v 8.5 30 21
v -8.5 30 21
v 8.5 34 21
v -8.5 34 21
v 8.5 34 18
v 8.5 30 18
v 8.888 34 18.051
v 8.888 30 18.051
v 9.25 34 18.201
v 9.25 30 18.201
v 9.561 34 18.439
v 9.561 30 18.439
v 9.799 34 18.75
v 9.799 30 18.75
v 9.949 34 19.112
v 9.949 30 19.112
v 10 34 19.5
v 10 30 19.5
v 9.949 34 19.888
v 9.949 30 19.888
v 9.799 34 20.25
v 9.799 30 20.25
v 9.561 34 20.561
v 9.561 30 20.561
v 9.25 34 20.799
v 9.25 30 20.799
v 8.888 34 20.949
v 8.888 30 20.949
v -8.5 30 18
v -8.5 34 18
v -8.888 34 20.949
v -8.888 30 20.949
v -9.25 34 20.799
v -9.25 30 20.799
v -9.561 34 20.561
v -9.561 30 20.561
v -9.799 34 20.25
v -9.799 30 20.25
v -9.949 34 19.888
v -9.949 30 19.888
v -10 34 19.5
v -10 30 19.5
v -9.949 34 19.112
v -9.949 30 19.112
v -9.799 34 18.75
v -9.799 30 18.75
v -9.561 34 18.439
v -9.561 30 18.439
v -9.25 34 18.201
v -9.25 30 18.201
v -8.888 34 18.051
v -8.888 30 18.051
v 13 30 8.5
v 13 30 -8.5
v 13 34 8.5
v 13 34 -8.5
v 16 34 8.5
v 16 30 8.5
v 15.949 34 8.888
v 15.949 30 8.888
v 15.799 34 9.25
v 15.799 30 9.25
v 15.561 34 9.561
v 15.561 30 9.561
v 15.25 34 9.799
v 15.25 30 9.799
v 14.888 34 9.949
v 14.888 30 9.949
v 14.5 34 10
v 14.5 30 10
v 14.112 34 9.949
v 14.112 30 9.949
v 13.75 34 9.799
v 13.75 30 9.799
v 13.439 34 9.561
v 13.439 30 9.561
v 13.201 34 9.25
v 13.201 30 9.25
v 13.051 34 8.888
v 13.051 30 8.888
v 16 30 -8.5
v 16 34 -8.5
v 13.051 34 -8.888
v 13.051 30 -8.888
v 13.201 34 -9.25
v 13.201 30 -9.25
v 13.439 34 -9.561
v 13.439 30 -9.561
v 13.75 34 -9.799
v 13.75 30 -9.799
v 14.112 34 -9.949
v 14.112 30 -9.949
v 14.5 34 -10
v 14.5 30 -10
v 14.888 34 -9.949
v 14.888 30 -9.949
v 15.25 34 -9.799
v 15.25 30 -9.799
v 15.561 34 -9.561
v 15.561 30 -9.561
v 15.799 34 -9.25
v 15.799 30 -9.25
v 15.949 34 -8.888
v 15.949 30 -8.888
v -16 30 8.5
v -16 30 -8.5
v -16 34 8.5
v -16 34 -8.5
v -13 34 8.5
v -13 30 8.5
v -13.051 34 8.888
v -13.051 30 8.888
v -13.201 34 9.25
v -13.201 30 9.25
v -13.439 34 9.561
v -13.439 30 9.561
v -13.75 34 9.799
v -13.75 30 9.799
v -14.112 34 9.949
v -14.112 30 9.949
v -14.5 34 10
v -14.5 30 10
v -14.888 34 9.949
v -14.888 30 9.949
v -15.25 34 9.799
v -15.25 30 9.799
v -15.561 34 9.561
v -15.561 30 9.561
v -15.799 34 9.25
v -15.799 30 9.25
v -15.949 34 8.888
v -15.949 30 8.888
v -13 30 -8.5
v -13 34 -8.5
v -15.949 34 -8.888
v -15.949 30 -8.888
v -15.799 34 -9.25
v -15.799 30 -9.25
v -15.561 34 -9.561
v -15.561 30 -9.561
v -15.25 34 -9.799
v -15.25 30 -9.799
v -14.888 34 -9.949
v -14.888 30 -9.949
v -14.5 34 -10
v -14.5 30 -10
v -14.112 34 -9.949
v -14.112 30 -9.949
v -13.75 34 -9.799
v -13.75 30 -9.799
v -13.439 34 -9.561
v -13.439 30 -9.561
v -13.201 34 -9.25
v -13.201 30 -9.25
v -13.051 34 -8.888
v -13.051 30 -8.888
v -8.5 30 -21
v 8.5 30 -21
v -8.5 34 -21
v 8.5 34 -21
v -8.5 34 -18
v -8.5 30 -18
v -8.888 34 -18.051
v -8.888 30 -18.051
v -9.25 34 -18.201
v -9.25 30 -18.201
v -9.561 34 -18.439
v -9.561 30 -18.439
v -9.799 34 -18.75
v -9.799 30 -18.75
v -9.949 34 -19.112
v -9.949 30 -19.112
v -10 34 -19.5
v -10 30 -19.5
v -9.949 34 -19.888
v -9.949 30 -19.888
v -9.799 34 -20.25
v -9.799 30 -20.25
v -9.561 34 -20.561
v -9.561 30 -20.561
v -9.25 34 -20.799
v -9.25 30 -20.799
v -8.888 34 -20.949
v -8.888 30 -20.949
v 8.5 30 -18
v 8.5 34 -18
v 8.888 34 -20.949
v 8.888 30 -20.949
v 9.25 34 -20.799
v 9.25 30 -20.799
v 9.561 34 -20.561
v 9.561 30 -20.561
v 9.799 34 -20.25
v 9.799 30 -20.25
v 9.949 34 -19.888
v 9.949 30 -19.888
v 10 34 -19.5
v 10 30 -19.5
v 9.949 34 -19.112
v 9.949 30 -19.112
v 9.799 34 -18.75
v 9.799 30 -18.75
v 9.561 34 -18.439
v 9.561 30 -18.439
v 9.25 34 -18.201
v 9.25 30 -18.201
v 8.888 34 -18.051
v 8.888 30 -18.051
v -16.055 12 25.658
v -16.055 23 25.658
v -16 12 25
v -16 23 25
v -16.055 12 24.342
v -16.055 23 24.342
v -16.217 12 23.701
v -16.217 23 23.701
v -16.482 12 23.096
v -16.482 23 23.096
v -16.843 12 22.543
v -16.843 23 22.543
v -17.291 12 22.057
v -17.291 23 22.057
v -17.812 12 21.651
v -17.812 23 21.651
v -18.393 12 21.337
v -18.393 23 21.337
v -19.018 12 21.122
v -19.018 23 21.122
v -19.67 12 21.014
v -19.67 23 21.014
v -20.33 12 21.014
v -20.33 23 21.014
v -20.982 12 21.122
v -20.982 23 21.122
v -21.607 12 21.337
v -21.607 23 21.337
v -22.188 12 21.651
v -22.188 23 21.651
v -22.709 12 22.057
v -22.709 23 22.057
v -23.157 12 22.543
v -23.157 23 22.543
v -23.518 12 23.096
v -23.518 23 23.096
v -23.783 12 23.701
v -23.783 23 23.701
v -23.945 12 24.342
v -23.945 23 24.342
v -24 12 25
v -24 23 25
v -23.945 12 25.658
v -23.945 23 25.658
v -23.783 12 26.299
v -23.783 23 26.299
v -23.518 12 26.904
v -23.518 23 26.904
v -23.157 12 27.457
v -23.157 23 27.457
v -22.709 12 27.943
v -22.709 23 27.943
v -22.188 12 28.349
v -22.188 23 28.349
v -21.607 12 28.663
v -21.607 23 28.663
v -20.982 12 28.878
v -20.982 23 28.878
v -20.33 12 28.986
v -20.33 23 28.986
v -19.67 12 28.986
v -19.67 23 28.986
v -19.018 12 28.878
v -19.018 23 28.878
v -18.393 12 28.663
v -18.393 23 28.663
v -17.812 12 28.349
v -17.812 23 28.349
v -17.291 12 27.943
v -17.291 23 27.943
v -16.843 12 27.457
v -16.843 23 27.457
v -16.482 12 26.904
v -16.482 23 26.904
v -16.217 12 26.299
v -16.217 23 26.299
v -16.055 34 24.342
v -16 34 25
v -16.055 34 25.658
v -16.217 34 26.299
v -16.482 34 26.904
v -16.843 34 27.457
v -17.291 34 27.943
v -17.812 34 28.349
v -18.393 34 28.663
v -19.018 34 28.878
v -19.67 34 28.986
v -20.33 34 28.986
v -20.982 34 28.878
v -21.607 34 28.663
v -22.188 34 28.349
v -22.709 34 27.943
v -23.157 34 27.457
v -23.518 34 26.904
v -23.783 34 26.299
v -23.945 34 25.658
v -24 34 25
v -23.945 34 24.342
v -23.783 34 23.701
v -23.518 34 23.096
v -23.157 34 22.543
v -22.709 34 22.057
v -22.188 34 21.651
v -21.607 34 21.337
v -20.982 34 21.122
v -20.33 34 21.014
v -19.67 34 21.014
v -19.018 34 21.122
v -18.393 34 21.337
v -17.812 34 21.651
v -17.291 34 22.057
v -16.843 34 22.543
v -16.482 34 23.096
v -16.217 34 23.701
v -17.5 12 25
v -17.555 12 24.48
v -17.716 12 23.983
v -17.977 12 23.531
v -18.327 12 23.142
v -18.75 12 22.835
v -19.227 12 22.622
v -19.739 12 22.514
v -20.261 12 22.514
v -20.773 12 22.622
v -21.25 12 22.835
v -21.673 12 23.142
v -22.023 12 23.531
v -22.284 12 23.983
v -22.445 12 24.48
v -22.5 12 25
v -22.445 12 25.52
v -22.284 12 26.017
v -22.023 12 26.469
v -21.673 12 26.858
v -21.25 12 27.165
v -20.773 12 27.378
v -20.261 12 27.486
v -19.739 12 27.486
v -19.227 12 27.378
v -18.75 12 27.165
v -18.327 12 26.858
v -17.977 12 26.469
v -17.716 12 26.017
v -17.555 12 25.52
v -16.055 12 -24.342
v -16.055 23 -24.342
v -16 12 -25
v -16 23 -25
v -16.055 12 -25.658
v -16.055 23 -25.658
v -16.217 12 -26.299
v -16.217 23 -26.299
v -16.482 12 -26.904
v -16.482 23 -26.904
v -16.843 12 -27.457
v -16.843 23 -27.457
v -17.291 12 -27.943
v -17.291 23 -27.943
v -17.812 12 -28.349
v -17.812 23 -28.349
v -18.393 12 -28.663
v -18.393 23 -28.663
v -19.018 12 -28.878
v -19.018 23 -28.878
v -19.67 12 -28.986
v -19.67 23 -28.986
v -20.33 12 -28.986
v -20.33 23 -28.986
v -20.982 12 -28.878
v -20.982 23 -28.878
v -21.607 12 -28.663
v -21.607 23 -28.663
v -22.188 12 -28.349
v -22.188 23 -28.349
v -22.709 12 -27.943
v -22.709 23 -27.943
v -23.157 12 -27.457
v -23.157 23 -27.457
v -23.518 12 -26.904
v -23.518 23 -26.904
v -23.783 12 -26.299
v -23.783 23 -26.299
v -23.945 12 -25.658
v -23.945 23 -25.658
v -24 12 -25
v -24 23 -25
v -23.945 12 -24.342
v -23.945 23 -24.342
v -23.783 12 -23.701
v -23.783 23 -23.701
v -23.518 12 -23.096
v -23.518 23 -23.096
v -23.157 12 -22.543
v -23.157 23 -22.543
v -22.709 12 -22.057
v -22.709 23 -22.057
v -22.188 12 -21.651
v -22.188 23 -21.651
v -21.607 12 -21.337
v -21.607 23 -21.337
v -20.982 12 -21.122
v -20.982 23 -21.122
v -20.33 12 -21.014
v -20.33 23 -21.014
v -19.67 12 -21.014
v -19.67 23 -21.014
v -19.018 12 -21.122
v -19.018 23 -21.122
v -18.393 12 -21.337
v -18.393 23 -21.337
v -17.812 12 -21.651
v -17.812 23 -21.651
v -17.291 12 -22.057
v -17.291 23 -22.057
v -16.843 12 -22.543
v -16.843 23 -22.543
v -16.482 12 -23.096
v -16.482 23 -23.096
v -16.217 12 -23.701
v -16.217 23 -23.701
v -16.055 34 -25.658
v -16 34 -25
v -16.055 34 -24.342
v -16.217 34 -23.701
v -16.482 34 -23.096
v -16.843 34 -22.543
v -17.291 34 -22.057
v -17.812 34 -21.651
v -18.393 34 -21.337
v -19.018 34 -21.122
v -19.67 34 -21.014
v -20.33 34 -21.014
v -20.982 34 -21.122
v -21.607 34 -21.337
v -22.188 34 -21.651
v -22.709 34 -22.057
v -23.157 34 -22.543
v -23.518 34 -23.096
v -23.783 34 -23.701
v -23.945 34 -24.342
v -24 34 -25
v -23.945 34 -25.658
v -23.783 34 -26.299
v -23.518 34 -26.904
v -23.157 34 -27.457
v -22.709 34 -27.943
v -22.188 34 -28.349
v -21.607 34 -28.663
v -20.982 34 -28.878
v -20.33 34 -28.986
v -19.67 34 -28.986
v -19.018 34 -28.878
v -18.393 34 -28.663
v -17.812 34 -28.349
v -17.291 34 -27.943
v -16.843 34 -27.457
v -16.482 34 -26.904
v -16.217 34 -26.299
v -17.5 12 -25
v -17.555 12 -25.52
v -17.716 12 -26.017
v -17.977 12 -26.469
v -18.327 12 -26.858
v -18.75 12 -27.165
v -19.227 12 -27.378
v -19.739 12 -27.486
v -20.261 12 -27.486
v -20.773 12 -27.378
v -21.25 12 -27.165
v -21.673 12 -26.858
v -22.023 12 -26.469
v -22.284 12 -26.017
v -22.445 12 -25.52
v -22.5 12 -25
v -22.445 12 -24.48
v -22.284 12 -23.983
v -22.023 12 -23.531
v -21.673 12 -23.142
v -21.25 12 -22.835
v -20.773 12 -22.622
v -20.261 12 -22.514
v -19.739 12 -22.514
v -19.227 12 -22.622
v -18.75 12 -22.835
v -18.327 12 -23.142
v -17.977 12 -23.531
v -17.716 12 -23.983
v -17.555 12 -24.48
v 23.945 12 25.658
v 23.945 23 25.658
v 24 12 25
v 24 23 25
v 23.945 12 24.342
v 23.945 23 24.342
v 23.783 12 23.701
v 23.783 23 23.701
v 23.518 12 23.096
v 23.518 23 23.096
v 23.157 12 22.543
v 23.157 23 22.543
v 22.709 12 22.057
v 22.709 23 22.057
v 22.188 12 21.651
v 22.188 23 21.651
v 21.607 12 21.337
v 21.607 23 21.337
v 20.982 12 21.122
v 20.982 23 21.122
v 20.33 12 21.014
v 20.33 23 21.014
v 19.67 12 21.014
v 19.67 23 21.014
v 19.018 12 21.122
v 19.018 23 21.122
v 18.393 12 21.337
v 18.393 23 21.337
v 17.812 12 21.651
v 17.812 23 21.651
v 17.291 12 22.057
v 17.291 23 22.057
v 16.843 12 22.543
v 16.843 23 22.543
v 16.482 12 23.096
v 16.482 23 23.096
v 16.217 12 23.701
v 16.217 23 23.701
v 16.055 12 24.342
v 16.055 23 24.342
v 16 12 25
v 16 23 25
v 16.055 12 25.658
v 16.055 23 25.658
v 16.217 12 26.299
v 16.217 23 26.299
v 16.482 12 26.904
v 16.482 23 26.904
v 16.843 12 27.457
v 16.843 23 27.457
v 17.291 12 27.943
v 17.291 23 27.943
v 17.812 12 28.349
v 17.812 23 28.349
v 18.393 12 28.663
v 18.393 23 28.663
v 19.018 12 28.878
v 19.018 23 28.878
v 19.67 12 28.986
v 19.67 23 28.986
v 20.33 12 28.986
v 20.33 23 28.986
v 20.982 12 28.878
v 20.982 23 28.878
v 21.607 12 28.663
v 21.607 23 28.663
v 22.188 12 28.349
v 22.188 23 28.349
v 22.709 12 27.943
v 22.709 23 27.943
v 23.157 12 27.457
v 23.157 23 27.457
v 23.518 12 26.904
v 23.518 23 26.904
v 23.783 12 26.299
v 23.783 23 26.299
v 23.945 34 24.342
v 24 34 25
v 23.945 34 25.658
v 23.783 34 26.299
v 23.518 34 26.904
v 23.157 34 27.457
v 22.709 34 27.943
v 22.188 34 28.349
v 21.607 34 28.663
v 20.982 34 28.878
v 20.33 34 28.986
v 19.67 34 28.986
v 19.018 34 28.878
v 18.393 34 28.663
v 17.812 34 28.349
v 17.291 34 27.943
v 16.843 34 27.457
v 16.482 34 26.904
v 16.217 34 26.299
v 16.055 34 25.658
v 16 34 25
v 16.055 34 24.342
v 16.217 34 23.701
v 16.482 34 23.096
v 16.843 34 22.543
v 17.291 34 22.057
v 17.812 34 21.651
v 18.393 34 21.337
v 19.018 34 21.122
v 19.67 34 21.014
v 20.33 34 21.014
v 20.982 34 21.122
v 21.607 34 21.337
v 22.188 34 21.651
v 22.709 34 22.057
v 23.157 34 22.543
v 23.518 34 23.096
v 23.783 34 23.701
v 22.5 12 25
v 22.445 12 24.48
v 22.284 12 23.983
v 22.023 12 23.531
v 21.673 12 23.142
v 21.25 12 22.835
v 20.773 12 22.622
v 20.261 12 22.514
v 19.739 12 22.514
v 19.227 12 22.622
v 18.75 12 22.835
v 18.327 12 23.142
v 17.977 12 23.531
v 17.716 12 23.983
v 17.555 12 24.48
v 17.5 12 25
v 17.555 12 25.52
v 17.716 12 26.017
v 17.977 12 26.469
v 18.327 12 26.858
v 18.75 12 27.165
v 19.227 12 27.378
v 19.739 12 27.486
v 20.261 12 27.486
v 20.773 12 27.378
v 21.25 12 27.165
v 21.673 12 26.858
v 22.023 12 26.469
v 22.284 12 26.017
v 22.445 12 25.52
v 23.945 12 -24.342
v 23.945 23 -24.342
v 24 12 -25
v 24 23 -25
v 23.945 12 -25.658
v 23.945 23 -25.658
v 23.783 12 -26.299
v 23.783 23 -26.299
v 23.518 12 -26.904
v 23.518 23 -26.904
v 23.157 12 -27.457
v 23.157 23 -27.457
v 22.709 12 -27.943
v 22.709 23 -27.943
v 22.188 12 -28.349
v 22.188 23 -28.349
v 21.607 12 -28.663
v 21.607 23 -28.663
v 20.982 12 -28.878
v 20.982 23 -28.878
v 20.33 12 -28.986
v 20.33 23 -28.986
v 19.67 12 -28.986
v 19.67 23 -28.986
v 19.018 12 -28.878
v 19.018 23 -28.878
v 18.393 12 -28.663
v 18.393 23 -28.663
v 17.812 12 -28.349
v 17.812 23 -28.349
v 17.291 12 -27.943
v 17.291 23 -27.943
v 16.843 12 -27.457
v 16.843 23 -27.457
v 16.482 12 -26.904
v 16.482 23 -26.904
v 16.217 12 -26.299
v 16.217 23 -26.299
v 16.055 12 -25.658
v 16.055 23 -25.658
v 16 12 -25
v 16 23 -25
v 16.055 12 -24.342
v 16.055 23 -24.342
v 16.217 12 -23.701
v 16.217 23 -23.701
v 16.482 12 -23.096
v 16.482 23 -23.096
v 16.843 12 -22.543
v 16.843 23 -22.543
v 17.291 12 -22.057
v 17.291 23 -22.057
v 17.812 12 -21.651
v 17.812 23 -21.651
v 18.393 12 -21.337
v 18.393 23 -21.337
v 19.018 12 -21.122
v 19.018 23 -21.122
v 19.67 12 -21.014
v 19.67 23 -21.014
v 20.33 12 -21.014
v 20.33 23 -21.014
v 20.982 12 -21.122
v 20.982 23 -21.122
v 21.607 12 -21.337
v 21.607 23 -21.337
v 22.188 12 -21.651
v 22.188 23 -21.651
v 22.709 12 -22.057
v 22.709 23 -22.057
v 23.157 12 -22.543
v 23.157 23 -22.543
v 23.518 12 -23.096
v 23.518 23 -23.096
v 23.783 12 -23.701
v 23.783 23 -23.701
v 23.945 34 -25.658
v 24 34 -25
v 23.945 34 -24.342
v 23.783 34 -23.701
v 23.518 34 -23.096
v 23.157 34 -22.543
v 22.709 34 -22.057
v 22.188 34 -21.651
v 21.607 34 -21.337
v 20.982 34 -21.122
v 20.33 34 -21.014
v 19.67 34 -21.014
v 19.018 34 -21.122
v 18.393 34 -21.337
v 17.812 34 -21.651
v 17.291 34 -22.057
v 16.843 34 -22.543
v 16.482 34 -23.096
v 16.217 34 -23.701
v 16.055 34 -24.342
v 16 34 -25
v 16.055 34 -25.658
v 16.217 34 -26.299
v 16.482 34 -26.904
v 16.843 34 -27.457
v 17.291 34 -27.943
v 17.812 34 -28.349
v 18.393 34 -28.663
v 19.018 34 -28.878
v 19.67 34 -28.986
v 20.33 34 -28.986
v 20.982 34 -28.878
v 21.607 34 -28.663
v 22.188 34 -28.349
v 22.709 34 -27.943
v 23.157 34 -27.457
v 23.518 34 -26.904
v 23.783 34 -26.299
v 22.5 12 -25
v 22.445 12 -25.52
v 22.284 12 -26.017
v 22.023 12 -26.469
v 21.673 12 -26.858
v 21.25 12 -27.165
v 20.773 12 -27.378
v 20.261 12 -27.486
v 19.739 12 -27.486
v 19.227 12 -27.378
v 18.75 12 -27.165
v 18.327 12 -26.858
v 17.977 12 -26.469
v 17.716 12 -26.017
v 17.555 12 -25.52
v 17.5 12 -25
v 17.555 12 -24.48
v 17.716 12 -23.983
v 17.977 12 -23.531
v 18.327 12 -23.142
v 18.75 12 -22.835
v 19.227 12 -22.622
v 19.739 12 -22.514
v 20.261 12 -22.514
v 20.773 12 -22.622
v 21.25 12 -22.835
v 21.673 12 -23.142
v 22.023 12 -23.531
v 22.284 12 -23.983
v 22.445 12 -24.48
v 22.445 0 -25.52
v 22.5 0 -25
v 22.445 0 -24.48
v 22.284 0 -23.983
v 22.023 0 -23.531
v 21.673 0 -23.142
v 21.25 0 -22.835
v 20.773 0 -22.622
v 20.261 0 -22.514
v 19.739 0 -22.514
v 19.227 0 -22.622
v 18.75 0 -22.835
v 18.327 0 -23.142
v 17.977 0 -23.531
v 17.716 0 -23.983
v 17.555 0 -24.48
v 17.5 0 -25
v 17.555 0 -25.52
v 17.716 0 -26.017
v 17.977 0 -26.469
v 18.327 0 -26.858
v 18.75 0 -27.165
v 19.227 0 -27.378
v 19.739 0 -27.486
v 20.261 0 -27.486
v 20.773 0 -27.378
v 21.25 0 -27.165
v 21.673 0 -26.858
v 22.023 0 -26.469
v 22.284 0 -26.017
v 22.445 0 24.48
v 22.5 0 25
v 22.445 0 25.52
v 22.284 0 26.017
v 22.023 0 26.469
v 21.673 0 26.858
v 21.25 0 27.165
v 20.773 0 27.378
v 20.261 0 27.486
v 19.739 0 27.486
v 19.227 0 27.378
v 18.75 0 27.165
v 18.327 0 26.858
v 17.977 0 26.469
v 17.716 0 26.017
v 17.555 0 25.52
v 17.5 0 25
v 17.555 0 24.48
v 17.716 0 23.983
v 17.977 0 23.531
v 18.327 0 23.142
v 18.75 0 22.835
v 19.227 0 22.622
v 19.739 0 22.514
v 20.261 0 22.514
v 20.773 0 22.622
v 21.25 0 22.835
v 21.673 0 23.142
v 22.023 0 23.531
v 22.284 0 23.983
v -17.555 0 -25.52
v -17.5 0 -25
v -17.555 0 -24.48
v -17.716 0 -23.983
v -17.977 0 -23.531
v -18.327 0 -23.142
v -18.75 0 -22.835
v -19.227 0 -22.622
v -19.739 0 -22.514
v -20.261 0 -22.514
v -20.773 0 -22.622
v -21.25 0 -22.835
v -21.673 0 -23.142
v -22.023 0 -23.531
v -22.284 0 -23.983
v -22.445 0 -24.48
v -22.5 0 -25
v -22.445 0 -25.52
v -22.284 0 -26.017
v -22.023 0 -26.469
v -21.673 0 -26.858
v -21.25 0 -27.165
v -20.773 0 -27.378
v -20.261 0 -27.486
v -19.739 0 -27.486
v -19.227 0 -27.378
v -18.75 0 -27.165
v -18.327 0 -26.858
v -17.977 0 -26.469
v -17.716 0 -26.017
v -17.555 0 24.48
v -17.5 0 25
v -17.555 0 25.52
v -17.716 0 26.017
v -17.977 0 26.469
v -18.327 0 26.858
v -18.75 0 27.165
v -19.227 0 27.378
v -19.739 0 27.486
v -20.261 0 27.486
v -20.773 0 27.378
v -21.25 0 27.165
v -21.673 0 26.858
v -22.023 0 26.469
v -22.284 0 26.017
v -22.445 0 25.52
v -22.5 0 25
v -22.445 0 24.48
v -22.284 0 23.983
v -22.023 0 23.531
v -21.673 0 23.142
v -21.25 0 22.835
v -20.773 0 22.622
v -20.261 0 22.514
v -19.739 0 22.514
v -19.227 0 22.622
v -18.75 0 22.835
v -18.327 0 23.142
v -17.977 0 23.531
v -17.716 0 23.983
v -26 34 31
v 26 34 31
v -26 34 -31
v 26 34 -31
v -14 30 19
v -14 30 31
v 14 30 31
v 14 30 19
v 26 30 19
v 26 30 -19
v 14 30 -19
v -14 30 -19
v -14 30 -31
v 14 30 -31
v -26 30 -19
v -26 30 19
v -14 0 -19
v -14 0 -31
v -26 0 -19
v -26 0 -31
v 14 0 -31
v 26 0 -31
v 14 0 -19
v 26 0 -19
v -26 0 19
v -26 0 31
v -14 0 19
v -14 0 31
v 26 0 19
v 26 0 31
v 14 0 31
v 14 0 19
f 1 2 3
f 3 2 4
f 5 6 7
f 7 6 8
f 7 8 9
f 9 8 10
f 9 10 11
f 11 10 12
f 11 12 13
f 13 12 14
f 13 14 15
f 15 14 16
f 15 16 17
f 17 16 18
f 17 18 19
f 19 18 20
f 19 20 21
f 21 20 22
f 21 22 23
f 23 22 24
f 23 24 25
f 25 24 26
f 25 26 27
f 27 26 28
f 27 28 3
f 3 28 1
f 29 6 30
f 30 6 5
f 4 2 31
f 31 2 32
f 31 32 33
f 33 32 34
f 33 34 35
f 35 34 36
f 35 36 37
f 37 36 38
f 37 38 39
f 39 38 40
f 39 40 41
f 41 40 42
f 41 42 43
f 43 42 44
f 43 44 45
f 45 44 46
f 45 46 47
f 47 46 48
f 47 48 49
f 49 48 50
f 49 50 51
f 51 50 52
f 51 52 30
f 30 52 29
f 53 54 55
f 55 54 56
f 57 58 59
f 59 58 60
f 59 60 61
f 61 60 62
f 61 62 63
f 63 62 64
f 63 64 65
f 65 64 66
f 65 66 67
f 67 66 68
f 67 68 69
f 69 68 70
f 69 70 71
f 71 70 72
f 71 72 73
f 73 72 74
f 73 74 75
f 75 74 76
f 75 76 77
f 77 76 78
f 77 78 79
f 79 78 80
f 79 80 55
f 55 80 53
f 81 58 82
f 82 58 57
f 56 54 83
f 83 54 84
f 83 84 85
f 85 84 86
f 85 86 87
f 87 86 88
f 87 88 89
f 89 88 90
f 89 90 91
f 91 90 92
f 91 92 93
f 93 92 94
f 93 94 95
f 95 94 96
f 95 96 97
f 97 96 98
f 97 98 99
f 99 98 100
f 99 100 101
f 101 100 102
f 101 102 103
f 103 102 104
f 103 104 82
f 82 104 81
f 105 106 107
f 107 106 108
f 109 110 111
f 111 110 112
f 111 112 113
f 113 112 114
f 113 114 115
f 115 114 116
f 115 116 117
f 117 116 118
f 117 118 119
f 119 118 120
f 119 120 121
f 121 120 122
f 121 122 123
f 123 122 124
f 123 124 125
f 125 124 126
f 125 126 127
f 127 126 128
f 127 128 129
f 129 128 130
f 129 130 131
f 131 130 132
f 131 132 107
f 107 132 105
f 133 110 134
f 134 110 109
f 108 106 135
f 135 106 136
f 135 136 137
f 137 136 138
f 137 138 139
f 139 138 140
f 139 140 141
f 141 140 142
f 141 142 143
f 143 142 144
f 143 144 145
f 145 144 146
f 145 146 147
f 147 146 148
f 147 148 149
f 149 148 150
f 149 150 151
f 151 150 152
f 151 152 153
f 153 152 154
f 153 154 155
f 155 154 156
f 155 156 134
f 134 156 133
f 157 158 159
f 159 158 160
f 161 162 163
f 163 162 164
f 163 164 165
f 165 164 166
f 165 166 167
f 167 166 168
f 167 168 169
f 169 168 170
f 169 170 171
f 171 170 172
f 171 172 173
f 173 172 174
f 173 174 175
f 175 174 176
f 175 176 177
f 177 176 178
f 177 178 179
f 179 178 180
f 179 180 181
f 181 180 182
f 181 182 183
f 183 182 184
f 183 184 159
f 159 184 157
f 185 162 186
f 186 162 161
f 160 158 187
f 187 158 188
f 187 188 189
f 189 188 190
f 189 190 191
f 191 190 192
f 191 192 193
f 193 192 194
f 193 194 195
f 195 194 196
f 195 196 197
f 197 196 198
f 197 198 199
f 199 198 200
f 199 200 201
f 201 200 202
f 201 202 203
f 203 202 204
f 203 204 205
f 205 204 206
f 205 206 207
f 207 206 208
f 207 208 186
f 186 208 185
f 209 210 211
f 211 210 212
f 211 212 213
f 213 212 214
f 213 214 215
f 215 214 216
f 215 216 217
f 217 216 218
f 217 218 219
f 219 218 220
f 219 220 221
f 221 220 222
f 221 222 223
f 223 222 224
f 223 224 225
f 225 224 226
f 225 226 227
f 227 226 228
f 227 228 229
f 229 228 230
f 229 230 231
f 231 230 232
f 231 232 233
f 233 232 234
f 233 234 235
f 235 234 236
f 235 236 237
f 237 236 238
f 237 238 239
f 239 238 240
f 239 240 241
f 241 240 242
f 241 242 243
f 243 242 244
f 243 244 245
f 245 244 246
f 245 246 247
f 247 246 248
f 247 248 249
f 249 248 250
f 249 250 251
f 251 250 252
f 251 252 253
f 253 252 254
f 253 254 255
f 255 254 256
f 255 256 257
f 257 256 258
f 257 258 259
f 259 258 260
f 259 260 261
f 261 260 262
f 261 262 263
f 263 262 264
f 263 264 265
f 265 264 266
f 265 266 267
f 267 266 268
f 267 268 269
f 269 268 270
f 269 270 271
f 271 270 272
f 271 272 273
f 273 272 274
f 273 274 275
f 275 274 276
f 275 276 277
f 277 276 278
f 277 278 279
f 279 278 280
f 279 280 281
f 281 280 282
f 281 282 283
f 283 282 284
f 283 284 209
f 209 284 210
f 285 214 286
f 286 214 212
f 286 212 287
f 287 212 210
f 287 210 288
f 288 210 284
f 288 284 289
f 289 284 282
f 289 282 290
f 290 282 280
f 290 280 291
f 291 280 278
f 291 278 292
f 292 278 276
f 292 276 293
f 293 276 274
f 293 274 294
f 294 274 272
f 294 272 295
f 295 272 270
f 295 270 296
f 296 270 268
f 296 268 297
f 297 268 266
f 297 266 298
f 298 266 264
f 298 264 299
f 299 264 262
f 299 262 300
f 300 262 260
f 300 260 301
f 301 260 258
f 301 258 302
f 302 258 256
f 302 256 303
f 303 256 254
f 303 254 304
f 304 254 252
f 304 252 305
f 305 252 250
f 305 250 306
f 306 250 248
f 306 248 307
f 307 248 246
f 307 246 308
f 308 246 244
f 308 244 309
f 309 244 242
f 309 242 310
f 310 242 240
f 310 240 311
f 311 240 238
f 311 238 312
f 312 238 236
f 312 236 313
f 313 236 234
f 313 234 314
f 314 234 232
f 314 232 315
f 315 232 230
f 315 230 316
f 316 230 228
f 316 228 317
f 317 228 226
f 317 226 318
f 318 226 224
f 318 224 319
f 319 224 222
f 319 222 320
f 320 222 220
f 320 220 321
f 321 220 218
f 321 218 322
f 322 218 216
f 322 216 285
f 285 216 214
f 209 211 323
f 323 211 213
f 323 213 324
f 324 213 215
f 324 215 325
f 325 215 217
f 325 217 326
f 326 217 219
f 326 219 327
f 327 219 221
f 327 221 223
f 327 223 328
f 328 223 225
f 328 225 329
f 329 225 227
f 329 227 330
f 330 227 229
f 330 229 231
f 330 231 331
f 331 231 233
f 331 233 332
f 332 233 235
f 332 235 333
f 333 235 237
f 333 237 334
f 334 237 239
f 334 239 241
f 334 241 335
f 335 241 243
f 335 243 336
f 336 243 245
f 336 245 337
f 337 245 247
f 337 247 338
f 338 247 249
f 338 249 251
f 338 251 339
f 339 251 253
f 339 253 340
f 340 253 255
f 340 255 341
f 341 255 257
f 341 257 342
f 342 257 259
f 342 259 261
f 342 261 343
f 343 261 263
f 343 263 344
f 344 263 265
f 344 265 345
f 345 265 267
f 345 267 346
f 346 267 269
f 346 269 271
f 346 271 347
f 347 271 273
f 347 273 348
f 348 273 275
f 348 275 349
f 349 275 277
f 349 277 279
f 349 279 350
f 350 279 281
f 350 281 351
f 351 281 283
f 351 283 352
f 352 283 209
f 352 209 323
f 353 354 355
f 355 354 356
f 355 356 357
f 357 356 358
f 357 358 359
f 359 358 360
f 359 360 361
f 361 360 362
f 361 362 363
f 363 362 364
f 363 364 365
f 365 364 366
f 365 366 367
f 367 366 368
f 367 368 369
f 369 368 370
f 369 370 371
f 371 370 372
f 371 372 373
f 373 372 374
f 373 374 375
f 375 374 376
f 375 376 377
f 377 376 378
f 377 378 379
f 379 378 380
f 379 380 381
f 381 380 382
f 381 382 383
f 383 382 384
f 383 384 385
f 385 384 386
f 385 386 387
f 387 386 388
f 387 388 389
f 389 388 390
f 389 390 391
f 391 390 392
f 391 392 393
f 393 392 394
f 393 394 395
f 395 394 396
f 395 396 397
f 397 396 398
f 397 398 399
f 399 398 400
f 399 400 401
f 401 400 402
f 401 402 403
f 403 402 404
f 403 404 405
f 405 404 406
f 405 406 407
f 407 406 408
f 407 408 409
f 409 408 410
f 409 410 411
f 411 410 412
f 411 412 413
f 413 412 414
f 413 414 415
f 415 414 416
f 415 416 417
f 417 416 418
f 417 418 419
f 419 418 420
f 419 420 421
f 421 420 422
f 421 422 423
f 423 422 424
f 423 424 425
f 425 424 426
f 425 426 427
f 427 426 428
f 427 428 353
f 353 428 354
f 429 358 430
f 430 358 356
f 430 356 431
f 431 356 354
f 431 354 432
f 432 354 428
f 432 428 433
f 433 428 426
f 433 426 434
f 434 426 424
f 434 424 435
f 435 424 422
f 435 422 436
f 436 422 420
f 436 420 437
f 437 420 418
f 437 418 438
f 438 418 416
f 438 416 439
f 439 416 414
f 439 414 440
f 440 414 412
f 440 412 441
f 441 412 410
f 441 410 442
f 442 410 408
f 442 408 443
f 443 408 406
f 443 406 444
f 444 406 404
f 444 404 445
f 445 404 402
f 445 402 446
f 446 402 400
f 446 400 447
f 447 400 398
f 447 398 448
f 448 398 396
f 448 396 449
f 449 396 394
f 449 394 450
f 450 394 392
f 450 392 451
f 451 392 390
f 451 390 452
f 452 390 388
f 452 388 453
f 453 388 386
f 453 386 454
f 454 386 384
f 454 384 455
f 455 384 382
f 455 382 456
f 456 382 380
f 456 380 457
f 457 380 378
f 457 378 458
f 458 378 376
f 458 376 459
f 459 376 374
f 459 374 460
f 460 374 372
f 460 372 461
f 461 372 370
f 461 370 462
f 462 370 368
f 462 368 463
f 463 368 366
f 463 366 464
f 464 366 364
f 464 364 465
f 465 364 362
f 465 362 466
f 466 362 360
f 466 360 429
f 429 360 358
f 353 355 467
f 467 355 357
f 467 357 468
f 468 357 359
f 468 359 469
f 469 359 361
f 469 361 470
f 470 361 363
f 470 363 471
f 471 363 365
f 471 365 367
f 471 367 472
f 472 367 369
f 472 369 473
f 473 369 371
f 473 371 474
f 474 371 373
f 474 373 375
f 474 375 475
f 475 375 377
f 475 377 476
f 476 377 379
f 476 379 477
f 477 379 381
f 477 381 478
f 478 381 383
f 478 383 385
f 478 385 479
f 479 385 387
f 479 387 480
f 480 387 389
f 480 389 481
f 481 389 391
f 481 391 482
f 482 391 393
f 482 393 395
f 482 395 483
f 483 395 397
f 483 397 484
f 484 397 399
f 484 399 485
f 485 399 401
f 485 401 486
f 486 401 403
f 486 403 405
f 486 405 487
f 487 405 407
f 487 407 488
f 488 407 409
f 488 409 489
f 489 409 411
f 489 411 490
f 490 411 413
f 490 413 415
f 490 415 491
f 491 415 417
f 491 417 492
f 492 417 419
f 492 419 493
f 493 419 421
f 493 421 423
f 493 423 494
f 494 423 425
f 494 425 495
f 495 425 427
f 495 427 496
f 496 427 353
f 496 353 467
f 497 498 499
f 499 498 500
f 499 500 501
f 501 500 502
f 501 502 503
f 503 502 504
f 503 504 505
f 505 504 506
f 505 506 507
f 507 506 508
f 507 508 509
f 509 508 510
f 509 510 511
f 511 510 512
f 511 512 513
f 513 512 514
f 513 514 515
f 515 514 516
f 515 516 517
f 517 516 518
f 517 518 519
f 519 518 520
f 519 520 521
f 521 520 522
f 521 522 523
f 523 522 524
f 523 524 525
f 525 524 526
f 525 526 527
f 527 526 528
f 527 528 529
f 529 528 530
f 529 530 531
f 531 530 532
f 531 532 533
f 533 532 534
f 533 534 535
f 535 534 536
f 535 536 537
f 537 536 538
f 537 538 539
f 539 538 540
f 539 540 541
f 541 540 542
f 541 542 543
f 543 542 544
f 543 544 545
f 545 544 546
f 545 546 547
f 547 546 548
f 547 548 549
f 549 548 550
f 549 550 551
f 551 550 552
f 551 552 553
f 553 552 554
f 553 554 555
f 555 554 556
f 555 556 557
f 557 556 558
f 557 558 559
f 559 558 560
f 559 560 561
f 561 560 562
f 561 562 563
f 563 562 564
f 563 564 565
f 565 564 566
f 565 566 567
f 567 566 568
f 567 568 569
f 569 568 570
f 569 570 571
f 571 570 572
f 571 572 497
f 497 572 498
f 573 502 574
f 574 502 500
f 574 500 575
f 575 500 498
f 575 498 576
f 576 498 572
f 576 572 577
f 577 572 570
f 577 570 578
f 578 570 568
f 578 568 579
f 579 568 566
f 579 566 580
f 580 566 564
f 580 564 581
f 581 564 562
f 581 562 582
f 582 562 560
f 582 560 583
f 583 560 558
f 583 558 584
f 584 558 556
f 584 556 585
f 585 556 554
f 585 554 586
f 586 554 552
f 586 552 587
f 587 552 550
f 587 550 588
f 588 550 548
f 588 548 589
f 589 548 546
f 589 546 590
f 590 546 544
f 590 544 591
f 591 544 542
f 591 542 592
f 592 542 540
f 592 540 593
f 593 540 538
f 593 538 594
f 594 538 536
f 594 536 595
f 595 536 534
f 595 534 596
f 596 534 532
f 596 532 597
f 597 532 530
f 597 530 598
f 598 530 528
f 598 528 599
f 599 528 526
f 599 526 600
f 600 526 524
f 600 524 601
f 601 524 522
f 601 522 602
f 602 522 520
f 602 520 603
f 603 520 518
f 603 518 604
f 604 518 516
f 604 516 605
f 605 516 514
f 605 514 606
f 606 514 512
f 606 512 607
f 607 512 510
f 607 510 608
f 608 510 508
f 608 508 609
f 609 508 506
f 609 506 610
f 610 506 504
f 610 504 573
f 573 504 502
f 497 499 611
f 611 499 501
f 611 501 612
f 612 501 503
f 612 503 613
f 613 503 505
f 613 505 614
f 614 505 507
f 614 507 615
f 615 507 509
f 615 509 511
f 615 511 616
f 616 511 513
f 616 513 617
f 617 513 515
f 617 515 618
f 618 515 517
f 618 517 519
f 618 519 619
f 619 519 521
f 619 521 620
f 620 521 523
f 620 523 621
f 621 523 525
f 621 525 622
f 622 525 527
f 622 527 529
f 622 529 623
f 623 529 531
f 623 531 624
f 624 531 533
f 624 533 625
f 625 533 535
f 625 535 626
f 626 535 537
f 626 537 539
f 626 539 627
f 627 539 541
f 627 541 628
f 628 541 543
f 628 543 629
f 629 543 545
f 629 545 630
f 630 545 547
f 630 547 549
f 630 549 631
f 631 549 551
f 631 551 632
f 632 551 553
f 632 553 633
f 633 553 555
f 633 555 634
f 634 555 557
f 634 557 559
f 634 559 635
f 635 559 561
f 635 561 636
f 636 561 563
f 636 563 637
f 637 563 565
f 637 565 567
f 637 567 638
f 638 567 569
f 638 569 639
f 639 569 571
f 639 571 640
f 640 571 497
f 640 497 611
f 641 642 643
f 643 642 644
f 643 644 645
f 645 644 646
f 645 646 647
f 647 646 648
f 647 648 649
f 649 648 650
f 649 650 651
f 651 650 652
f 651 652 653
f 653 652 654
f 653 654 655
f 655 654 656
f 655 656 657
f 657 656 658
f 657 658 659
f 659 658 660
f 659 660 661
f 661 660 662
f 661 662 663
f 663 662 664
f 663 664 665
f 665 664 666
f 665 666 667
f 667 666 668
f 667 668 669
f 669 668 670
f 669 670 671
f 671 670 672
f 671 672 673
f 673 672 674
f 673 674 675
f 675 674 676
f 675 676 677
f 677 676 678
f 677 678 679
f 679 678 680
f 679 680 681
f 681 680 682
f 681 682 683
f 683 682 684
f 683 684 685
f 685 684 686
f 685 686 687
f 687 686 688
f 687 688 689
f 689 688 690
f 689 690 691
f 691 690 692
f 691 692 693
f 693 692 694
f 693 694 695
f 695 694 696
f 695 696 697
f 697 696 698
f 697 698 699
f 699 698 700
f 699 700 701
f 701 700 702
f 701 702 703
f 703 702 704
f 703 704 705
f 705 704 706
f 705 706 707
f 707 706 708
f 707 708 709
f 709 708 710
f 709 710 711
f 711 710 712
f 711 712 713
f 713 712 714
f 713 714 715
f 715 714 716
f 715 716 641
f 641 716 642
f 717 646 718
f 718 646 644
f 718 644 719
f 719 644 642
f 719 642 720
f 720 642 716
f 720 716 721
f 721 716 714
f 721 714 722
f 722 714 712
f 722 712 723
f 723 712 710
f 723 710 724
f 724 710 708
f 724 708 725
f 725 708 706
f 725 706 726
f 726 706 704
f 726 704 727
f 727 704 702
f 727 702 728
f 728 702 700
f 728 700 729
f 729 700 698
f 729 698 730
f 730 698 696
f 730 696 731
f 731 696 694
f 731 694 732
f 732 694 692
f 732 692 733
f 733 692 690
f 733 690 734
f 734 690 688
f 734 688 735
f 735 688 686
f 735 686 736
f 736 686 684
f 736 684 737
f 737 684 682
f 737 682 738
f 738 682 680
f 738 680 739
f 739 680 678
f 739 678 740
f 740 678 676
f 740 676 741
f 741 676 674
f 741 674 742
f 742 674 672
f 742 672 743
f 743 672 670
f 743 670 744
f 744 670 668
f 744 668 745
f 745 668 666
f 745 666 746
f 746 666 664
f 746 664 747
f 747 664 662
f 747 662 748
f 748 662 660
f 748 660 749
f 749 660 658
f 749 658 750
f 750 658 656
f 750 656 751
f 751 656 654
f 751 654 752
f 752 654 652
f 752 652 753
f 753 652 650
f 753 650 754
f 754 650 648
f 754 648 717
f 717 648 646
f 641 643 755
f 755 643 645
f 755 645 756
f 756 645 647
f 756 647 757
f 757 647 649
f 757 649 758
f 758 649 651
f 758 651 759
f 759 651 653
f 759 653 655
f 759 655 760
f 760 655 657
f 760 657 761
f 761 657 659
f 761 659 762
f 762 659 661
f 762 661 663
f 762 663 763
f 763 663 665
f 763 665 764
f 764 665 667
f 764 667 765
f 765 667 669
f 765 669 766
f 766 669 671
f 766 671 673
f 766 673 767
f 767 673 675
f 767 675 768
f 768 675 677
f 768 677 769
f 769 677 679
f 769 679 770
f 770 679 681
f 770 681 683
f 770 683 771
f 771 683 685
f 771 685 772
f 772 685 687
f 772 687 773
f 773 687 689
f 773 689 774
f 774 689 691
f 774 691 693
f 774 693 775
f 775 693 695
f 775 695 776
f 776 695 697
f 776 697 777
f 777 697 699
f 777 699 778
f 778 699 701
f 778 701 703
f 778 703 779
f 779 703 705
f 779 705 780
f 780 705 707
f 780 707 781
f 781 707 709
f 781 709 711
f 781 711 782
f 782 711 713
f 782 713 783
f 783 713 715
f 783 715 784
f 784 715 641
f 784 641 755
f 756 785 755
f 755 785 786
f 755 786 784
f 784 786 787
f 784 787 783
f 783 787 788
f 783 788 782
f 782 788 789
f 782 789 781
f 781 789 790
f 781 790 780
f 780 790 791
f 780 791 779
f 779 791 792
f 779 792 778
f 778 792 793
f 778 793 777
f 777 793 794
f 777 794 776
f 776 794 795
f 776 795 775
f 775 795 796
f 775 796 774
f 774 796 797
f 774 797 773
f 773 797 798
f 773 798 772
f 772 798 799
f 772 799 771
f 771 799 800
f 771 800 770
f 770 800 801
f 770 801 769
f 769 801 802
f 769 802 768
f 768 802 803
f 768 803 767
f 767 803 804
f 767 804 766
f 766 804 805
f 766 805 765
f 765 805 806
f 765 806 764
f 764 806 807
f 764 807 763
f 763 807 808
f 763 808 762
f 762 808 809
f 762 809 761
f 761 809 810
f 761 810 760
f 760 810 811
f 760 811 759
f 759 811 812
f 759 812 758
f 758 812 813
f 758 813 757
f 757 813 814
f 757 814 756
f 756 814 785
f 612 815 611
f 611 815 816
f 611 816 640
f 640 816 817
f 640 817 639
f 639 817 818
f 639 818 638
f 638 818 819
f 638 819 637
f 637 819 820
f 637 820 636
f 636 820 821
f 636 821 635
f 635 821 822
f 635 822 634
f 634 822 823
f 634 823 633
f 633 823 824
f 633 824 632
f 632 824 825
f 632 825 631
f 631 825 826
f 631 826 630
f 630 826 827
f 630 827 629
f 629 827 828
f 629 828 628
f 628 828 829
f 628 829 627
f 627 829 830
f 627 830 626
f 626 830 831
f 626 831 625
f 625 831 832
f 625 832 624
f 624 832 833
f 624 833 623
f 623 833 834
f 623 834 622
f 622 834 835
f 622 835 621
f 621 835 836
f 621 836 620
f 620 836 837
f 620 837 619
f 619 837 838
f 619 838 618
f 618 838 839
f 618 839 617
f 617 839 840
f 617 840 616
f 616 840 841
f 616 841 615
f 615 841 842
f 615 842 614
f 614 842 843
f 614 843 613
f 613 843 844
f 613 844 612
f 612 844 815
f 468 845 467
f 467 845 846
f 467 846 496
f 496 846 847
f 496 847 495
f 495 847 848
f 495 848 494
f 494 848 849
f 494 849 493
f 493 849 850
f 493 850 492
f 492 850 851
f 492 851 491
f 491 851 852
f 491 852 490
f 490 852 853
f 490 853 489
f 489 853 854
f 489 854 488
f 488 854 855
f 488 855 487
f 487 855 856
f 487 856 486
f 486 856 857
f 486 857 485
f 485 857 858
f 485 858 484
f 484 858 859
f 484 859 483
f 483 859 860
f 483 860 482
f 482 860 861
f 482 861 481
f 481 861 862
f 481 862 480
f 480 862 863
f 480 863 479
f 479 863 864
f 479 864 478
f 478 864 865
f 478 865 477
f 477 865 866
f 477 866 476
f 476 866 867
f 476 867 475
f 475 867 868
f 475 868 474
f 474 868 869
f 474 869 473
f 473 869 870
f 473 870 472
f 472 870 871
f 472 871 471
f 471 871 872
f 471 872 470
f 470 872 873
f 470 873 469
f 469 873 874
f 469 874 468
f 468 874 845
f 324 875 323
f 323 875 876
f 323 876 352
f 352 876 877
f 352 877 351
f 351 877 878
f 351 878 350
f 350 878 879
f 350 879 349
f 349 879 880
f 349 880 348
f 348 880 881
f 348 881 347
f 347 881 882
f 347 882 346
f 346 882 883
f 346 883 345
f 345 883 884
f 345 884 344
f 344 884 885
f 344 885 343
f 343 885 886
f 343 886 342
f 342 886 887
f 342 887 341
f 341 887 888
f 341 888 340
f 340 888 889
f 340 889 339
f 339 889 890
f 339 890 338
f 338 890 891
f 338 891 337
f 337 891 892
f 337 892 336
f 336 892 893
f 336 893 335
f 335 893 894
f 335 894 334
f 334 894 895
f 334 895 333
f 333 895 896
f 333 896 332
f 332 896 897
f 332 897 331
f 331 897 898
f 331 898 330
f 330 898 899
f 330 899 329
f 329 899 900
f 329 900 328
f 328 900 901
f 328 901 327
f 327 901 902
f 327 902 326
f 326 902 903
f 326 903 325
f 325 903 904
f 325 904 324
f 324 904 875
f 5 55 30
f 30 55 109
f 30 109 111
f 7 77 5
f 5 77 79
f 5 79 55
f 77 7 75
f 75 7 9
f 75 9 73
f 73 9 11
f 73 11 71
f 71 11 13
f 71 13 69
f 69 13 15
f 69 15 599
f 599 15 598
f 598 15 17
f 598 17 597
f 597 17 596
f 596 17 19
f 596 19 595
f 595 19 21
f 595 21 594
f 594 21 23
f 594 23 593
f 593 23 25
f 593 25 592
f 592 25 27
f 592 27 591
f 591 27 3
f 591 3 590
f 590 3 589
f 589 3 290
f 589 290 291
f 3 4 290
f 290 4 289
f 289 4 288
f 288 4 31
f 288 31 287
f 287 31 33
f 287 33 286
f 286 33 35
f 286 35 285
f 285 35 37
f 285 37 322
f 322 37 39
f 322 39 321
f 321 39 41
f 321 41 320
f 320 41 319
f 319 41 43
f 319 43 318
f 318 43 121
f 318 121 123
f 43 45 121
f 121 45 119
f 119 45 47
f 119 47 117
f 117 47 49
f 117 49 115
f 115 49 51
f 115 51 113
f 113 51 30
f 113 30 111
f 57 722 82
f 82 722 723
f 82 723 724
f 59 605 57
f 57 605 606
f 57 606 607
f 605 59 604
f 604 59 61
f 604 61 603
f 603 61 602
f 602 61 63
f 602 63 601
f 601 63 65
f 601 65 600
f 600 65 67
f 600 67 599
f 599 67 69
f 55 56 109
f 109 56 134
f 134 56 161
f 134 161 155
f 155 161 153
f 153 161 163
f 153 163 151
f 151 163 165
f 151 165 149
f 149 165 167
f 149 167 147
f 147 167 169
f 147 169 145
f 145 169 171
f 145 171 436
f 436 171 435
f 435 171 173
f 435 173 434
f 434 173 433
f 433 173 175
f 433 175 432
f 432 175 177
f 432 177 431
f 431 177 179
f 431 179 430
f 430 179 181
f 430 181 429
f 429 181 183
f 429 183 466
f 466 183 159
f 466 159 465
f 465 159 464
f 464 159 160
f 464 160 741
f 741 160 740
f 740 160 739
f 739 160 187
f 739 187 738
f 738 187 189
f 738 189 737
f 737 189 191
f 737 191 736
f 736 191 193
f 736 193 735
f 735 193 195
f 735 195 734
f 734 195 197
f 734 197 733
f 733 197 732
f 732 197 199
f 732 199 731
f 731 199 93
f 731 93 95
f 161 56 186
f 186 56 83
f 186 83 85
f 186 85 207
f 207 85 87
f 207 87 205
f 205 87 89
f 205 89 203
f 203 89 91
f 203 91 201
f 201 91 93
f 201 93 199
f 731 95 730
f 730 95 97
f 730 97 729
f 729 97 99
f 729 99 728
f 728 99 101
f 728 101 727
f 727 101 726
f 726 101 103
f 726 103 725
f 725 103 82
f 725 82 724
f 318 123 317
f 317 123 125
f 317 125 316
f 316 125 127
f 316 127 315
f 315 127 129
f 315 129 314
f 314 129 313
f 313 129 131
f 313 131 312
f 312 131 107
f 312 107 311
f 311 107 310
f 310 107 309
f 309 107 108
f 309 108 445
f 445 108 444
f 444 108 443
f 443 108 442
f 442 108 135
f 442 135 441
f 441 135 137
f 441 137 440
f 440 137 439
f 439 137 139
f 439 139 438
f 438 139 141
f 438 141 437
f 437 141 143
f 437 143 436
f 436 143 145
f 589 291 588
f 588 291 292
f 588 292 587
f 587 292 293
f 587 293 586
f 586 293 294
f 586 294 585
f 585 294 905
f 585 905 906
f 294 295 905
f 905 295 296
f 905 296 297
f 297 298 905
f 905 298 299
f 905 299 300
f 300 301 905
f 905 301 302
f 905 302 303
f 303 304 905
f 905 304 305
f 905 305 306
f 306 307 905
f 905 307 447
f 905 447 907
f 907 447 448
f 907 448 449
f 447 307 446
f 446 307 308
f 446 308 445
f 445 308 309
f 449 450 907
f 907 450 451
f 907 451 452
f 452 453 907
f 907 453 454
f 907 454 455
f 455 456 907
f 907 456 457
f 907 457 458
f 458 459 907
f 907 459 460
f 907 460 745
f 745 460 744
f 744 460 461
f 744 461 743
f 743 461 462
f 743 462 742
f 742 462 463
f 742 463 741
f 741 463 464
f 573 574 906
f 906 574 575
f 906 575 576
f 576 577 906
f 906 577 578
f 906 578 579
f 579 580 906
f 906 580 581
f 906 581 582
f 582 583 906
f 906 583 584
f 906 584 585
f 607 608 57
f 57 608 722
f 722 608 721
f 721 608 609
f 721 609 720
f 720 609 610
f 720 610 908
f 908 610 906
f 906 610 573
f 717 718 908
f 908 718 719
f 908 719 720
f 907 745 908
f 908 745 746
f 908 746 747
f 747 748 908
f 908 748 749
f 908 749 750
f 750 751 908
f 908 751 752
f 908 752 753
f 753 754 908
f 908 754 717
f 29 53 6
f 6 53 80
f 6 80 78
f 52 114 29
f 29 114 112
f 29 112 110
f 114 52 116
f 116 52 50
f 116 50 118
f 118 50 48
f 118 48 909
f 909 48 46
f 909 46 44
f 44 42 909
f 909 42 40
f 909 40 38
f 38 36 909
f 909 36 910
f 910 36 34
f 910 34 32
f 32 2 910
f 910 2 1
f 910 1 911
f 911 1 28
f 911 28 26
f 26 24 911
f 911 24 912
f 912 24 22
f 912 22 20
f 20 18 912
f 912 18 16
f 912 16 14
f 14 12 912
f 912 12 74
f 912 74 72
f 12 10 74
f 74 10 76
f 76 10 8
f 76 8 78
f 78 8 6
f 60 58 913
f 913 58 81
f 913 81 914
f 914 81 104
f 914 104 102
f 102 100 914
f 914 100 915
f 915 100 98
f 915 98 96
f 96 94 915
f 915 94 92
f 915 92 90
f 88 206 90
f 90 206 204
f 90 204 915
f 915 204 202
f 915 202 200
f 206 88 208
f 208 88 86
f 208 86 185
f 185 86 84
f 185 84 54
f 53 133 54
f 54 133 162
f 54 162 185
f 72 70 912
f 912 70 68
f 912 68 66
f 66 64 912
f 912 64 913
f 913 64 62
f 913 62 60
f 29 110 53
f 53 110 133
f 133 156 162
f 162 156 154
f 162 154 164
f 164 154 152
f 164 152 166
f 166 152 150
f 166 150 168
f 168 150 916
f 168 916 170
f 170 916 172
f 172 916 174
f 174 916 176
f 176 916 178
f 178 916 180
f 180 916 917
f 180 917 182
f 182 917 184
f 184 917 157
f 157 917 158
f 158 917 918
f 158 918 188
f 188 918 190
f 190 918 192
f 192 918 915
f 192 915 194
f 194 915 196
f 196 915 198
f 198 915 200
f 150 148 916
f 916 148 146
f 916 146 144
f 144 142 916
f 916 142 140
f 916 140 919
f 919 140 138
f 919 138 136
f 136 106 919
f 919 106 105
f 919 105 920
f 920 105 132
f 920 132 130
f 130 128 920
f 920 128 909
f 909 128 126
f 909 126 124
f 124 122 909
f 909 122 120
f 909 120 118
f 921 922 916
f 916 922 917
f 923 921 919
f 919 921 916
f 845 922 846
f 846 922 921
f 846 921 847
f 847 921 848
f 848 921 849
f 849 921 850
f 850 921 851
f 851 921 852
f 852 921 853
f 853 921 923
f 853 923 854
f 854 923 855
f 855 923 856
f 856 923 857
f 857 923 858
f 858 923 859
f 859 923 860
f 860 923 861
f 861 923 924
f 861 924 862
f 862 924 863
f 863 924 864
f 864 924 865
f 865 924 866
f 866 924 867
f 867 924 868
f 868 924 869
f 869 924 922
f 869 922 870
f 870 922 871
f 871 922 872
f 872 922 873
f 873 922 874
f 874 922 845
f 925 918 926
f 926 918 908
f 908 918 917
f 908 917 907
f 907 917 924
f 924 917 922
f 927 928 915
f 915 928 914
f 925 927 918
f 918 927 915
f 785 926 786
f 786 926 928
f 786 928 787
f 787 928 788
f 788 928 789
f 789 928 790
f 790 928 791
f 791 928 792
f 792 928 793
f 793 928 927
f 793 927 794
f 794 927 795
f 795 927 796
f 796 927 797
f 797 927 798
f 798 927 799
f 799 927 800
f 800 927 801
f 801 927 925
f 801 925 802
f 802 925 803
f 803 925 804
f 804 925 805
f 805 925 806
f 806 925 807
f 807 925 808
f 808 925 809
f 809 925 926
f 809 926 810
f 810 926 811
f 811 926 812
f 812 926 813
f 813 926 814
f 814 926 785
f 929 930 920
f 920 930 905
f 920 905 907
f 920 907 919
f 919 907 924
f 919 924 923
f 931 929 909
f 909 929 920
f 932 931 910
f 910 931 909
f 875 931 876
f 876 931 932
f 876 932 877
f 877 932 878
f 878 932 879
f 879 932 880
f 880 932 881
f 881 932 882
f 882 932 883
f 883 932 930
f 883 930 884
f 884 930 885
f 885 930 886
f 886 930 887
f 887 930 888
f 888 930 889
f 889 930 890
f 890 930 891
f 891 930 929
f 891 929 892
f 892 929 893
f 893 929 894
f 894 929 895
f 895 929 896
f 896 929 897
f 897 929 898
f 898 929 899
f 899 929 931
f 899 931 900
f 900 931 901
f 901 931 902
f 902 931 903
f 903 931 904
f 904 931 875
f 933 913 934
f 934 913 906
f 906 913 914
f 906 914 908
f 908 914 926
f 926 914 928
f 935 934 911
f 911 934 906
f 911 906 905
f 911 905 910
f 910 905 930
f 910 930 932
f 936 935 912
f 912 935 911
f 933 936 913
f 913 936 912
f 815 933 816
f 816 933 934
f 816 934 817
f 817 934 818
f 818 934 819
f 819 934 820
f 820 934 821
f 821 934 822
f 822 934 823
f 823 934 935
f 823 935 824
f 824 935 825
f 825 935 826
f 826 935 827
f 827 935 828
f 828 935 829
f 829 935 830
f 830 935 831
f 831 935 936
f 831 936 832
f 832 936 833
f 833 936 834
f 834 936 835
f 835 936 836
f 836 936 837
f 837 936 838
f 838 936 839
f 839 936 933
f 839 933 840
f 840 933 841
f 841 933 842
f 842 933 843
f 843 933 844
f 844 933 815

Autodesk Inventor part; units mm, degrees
ref_plane "YZ Plane" through (0, 0, 0) normal (1, 0, 0) x (0, 1, 0)
ref_plane "XZ Plane" through (0, 0, 0) normal (0, 1, 0) x (-1, 0, 0)
ref_plane "XY Plane" through (0, 0, 0) normal (0, 0, 1) x (1, 0, 0)
sketch "Szkic1" plane through (0, 0, 0) normal (0, 1, 0) x (-1, 0, 0)
  line L0 (20, 25) -> (-20, 25)
  line L1 (-20, 25) -> (-20, -25)
  line L2 (-20, -25) -> (20, -25)
  line L3 (20, -25) -> (20, 25)
  line L4 (20, 25) -> (-20, -25) construction
  line L5 (-20, 25) -> (20, -25) construction
  line L6 (26, 31) -> (14, 31)
  line L7 (14, 31) -> (14, 19)
  line L8 (14, 19) -> (26, 19)
  line L9 (26, 19) -> (26, 31)
  line L10 (26, 31) -> (14, 19) construction
  line L11 (14, 31) -> (26, 19) construction
  line L12 (26, -19) -> (14, -19)
  line L13 (14, -19) -> (14, -31)
  line L14 (14, -31) -> (26, -31)
  line L15 (26, -31) -> (26, -19)
  line L16 (26, -19) -> (14, -31) construction
  line L17 (14, -19) -> (26, -31) construction
  line L18 (-14, 31) -> (-26, 31)
  line L19 (-26, 31) -> (-26, 19)
  line L20 (-26, 19) -> (-14, 19)
  line L21 (-14, 19) -> (-14, 31)
  line L22 (-14, 31) -> (-26, 19) construction
  line L23 (-26, 31) -> (-14, 19) construction
  line L24 (-14, -19) -> (-26, -19)
  line L25 (-26, -19) -> (-26, -31)
  line L26 (-26, -31) -> (-14, -31)
  line L27 (-14, -31) -> (-14, -19)
  line L28 (-14, -19) -> (-26, -31) construction
  line L29 (-26, -19) -> (-14, -31) construction
  point P0 (0, 0)
  point P1 (20, 19)
  point P2 (-14, -25)
  point P3 (-26, -25)
  point P4 (-20, -19)
  point P5 (-20, -31)
  dimension "d0" = 50
  dimension "d1" = 40
  dimension "d2" = 12
  dimension "d3" = 12
  dimension "d4" = 12
  dimension "d5" = 12
  dimension "d6" = 12
  dimension "d7" = 12
  dimension "d8" = 12
  dimension "d9" = 12
extrude "Wyciągnięcie proste1" add sketch "Szkic1" along normal blind 30 contours L3 L8 L7 L0 | L0 L7 L6 L9 L8 L3 | L21 L20 L1 L0 | L0 L1 L20 L19 L18 L21 | L12 L15 L14 L13 L2 L3 | L3 L2 L13 L12 | L24 L27 L2 L1 | L1 L2 L27 L26 L25 L24
sketch "Szkic2" plane through (0, 30, 0) normal (0, 1, 0) x (1, 0, 0)
  line L0 (-26, -19) -> (-26, -31) projected
  line L1 (26, 31) -> (14, 31) projected
  line L2 (-26, -31) -> (26, -31)
  line L3 (26, -31) -> (26, 31)
  line L4 (26, 31) -> (-26, 31)
  line L5 (-26, 31) -> (-26, -31)
  point P0 (0, 0)
extrude "Wyciągnięcie proste2" add sketch "Szkic2" along normal blind 4
sketch "Szkic3" plane through (0, 0, 0) normal (0, -1, 0) x (1, 0, 0)
  circle A0 centre (-20, 25) radius 2.5
  circle A1 centre (20, 25) radius 2.5
  circle A2 centre (-20, -25) radius 2.5
  circle A3 centre (20, -25) radius 2.5
  line L0 (-14, 19) -> (-26, 19) projected
  line L1 (26, 19) -> (14, 19) projected
  line L2 (-26, -19) -> (-14, -19) projected
  line L3 (14, -19) -> (26, -19) projected
  line L4 (14, -31) -> (14, -19) projected
  line L5 (-26, -31) -> (-26, -19) projected
  line L6 (-26, 19) -> (-26, 31) projected
  line L7 (14, 19) -> (14, 31) projected
  point P0 (0, 0)
  point P1 (-20, 19)
  point P2 (-20, -19)
  point P3 (-26, -25)
  dimension "d14" = 5
  dimension "d15" = 6
  dimension "d16" = 6
  dimension "d17" = 6
  dimension "d18" = 6
  dimension "d19" = 6
  dimension "d20" = 6
  dimension "d21" = 6
  dimension "d22" = 6
  dimension "d23" = 5
  dimension "d24" = 5
  dimension "d25" = 5
extrude "Wyciągnięcie proste3" cut sketch "Szkic3" against normal blind 34
sketch "Szkic4" plane through (0, 34, 0) normal (0, 1, 0) x (1, 0, 0)
  circle A0 centre (20, 25) radius 2.5 projected
  circle A1 centre (20, 25) radius 4
  circle A2 centre (20, -25) radius 2.5 projected
  circle A3 centre (20, -25) radius 4
  circle A4 centre (-20, -25) radius 2.5 projected
  circle A5 centre (-20, -25) radius 4
  circle A6 centre (-20, 25) radius 2.5 projected
  circle A7 centre (-20, 25) radius 4
  point P0 (0, 0)
  dimension "d28" = 8
  dimension "d29" = 8
  dimension "d30" = 8
  dimension "d31" = 8
extrude "Wyciągnięcie proste4" cut sketch "Szkic4" against normal blind 22
sketch "Szkic5" plane through (0, 34, 0) normal (0, 1, 0) x (1, 0, 0)
  line L0 (14.5, 8.5) -> (14.5, -8.5) construction
  line L1 (13, 8.5) -> (13, -8.5)
  line L2 (16, -8.5) -> (16, 8.5)
  arc A0 (16, 8.5) -> (13, 8.5) centre (14.5, 8.5) ccw
  arc A1 (13, -8.5) -> (16, -8.5) centre (14.5, -8.5) ccw
  line L3 (8.5, 19.5) -> (-8.5, 19.5) construction
  line L4 (8.5, 21) -> (-8.5, 21)
  line L5 (-8.5, 18) -> (8.5, 18)
  arc A2 (8.5, 18) -> (8.5, 21) centre (8.5, 19.5) ccw
  arc A3 (-8.5, 21) -> (-8.5, 18) centre (-8.5, 19.5) ccw
  line L6 (-14.5, 8.5) -> (-14.5, -8.5) construction
  line L7 (-16, 8.5) -> (-16, -8.5)
  line L8 (-13, -8.5) -> (-13, 8.5)
  arc A4 (-13, 8.5) -> (-16, 8.5) centre (-14.5, 8.5) ccw
  arc A5 (-16, -8.5) -> (-13, -8.5) centre (-14.5, -8.5) ccw
  line L9 (-8.5, -19.5) -> (8.5, -19.5) construction
  line L10 (-8.5, -21) -> (8.5, -21)
  line L11 (8.5, -18) -> (-8.5, -18)
  arc A6 (-8.5, -18) -> (-8.5, -21) centre (-8.5, -19.5) ccw
  arc A7 (8.5, -21) -> (8.5, -18) centre (8.5, -19.5) ccw
  line L12 (26, 31) -> (-26, 31) projected
  line L13 (26, -31) -> (26, 31) projected
  line L14 (-26, -31) -> (26, -31) projected
  line L15 (-26, 31) -> (-26, -31) projected
  point P0 (0, 0)
  point P1 (14.5, 0)
  point P2 (0, 19.5)
  point P3 (-14.5, 0)
  point P4 (0, -19.5)
  point P5 (-16, 0)
  point P6 (-26, 0)
  point P7 (10, 19.5)
  point P8 (-10, 19.5)
  point P9 (10, -19.5)
  point P10 (-10, -19.5)
  point P11 (14.5, -10)
  point P12 (14.5, 10)
  point P13 (-14.5, -10)
  point P14 (-14.5, 10)
  dimension "d34" = 10
  dimension "d35" = 10
  dimension "d36" = 10
  dimension "d37" = 3
  dimension "d38" = 10
  dimension "d39" = 20
  dimension "d40" = 20
  dimension "d41" = 20
  dimension "d42" = 20
  dimension "d43" = 3
  dimension "d44" = 3
  dimension "d45" = 3
  dimension "d46" = 31
  dimension "d47" = 31
  dimension "d48" = 26
  dimension "d49" = 26
extrude "Wyciągnięcie proste5" cut sketch "Szkic5" against normal blind 22 contours A0 L2 A1 L1 | A2 L5 A3 L4 | A4 L8 A5 L7 | A6 L11 A7 L10
properties part number "wires_keeper_Drukowanie 3D"
